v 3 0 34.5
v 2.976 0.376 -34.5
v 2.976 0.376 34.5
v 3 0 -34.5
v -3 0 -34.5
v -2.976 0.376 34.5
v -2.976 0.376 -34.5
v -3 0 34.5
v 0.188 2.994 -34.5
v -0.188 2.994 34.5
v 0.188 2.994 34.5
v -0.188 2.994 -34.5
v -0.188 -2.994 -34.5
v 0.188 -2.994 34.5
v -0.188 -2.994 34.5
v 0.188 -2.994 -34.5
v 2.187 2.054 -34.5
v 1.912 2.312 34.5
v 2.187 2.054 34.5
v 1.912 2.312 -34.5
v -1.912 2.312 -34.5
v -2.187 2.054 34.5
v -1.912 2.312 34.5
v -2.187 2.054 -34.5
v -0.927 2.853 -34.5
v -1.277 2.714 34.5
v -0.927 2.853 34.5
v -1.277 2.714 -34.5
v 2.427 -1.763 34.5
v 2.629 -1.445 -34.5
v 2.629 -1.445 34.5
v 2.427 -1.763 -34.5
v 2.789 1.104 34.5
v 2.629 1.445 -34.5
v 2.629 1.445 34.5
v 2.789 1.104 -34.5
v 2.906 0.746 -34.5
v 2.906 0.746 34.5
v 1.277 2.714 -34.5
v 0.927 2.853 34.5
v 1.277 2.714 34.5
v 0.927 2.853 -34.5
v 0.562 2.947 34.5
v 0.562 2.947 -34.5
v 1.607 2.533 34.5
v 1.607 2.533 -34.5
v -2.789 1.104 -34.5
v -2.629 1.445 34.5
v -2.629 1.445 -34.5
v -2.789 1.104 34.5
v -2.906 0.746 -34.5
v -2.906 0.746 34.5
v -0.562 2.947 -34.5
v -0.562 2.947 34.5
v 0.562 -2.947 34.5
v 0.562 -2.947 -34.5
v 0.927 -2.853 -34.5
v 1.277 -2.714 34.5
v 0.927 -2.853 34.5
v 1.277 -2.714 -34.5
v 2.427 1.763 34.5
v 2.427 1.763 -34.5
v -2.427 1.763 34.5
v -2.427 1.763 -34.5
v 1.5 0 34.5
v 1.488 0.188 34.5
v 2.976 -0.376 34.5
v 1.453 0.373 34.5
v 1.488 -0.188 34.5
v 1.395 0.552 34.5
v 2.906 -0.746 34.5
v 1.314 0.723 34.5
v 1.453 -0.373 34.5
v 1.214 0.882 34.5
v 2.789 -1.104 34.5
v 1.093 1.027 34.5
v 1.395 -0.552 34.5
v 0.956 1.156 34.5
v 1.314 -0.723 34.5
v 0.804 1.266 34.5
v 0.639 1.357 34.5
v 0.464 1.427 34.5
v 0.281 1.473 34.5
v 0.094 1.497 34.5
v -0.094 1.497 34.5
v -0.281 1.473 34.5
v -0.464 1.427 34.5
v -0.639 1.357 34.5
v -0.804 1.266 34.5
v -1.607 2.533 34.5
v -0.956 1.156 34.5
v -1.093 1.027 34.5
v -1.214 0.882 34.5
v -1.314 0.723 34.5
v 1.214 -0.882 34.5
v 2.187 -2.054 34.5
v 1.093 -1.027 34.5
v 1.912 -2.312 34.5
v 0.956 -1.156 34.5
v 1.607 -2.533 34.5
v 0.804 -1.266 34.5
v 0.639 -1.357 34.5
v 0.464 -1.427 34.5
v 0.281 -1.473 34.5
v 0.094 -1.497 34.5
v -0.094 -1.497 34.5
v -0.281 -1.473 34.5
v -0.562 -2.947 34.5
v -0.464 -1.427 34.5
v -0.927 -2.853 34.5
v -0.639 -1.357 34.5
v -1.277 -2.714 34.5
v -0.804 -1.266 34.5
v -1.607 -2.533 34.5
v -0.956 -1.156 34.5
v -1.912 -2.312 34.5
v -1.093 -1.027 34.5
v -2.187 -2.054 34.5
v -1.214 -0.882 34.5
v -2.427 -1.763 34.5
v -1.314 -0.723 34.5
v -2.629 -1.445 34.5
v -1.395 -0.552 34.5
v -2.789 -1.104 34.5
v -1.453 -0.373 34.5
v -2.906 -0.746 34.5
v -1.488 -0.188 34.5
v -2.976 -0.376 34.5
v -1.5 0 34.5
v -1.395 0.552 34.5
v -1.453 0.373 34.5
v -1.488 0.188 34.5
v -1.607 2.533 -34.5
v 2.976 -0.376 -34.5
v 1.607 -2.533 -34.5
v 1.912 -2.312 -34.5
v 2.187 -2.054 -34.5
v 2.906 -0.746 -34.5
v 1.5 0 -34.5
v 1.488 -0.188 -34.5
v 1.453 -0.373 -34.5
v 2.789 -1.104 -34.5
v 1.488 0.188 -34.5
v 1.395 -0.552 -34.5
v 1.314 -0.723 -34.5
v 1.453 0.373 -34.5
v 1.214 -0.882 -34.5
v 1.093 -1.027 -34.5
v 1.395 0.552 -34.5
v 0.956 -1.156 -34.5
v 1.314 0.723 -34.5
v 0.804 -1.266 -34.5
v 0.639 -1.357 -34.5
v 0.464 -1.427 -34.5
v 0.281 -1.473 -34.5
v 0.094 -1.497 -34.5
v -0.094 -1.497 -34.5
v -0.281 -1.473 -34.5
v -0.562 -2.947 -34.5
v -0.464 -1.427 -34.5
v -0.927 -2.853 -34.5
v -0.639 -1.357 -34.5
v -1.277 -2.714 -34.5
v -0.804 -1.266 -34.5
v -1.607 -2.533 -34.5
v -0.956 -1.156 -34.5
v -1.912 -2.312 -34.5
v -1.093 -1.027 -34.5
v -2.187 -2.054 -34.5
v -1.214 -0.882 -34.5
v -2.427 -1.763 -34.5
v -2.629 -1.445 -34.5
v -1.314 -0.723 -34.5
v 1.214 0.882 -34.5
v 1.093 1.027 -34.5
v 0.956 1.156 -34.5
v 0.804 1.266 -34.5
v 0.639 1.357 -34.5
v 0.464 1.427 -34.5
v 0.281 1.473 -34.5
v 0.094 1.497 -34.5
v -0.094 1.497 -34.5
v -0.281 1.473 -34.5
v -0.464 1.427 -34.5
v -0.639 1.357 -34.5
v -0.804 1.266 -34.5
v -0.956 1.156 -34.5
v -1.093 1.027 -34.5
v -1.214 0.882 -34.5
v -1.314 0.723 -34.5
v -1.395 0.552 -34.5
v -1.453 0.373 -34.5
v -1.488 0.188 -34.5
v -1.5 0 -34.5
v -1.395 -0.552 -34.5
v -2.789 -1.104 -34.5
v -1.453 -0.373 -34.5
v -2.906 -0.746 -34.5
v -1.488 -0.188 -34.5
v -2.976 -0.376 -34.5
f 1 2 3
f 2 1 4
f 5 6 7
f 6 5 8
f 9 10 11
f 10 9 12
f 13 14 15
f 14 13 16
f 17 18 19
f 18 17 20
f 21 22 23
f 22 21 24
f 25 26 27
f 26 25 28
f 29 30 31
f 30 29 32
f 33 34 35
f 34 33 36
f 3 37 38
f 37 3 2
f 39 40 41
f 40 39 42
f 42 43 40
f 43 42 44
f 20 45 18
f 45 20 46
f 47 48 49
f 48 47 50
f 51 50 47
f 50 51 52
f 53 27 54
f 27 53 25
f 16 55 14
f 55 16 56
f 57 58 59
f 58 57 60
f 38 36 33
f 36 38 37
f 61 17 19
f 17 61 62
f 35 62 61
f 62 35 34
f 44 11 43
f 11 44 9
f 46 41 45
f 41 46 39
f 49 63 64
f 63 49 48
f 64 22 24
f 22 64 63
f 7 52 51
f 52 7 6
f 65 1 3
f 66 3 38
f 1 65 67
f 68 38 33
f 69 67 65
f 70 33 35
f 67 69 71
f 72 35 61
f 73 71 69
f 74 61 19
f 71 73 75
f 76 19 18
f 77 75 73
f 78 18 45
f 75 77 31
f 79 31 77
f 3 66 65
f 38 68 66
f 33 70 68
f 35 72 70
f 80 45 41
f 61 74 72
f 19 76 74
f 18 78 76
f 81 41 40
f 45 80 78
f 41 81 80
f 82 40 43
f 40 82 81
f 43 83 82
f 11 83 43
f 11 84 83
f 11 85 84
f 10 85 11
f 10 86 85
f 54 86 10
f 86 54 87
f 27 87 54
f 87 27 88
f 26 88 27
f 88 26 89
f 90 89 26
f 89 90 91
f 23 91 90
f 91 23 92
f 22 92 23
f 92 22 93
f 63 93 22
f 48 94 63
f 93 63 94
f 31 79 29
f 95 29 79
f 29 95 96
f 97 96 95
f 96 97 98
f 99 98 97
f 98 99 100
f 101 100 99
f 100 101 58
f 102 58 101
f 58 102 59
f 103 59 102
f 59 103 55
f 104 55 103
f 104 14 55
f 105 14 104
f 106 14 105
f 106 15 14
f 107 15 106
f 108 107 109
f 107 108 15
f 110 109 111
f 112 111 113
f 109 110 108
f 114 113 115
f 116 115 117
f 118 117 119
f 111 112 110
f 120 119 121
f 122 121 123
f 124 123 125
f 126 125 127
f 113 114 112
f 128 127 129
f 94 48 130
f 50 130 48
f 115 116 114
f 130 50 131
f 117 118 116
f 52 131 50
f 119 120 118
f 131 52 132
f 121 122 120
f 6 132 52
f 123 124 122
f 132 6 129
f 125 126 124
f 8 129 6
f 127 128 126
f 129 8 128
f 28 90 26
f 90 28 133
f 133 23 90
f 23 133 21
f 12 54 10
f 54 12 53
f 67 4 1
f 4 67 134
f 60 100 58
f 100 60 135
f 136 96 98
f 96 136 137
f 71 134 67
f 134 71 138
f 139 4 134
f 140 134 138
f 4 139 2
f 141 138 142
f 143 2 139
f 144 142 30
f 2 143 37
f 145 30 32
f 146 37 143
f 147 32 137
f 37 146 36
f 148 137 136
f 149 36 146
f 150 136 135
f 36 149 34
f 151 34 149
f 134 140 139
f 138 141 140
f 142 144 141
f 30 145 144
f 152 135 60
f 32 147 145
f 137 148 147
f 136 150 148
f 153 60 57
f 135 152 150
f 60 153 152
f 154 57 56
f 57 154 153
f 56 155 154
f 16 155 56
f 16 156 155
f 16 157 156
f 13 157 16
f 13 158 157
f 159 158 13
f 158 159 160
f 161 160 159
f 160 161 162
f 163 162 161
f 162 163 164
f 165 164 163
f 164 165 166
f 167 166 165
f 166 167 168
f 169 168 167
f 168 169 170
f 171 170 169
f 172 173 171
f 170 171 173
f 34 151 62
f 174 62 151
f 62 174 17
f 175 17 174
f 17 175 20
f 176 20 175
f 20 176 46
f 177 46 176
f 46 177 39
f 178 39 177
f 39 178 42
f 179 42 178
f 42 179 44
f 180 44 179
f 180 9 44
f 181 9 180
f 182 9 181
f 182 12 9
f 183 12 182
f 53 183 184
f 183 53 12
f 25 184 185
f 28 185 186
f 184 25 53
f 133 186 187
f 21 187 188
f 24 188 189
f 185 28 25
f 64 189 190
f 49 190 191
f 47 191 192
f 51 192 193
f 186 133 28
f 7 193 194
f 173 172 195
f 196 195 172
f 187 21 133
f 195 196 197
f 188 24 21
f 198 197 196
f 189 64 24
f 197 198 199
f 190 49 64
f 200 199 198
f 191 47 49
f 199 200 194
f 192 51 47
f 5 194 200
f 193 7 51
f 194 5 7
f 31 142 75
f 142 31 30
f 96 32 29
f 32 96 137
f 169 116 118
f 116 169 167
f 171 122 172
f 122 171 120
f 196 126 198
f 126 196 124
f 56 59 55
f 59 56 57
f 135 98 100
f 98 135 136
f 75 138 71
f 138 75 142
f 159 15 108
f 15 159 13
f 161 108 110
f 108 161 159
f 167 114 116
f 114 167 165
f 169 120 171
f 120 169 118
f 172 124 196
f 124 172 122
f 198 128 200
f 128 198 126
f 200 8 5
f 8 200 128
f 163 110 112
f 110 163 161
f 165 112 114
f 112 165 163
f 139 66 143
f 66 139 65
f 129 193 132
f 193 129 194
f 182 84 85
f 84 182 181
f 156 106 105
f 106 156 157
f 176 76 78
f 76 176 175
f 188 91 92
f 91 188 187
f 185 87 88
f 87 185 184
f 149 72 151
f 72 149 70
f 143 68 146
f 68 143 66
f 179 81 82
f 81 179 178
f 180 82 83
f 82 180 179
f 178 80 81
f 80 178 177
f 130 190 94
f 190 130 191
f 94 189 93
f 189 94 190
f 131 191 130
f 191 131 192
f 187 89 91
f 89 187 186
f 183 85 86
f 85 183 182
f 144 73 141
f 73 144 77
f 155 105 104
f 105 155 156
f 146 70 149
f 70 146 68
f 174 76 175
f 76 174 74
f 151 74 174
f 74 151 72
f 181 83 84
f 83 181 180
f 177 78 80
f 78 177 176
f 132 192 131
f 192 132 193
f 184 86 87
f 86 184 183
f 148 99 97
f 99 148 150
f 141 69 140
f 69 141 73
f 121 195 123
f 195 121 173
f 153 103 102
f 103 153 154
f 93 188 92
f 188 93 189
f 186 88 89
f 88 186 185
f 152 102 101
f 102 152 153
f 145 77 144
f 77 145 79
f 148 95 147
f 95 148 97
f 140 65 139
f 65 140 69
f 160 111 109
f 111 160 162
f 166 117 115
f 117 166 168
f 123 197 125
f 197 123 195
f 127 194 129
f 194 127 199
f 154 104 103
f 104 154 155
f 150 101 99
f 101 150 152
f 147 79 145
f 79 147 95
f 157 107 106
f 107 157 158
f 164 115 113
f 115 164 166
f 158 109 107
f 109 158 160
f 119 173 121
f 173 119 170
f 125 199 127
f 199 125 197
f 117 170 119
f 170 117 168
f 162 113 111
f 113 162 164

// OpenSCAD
$fn = 50;


difference() {
	union() {
		translate(v = [0, 0, -34.5000000000]) {
			cylinder(h = 69, r = 3.0000000000);
		}
	}
	union() {
		translate(v = [0, 0, -100.0000000000]) {
			cylinder(h = 200, r = 1.5000000000);
		}
	}
}
